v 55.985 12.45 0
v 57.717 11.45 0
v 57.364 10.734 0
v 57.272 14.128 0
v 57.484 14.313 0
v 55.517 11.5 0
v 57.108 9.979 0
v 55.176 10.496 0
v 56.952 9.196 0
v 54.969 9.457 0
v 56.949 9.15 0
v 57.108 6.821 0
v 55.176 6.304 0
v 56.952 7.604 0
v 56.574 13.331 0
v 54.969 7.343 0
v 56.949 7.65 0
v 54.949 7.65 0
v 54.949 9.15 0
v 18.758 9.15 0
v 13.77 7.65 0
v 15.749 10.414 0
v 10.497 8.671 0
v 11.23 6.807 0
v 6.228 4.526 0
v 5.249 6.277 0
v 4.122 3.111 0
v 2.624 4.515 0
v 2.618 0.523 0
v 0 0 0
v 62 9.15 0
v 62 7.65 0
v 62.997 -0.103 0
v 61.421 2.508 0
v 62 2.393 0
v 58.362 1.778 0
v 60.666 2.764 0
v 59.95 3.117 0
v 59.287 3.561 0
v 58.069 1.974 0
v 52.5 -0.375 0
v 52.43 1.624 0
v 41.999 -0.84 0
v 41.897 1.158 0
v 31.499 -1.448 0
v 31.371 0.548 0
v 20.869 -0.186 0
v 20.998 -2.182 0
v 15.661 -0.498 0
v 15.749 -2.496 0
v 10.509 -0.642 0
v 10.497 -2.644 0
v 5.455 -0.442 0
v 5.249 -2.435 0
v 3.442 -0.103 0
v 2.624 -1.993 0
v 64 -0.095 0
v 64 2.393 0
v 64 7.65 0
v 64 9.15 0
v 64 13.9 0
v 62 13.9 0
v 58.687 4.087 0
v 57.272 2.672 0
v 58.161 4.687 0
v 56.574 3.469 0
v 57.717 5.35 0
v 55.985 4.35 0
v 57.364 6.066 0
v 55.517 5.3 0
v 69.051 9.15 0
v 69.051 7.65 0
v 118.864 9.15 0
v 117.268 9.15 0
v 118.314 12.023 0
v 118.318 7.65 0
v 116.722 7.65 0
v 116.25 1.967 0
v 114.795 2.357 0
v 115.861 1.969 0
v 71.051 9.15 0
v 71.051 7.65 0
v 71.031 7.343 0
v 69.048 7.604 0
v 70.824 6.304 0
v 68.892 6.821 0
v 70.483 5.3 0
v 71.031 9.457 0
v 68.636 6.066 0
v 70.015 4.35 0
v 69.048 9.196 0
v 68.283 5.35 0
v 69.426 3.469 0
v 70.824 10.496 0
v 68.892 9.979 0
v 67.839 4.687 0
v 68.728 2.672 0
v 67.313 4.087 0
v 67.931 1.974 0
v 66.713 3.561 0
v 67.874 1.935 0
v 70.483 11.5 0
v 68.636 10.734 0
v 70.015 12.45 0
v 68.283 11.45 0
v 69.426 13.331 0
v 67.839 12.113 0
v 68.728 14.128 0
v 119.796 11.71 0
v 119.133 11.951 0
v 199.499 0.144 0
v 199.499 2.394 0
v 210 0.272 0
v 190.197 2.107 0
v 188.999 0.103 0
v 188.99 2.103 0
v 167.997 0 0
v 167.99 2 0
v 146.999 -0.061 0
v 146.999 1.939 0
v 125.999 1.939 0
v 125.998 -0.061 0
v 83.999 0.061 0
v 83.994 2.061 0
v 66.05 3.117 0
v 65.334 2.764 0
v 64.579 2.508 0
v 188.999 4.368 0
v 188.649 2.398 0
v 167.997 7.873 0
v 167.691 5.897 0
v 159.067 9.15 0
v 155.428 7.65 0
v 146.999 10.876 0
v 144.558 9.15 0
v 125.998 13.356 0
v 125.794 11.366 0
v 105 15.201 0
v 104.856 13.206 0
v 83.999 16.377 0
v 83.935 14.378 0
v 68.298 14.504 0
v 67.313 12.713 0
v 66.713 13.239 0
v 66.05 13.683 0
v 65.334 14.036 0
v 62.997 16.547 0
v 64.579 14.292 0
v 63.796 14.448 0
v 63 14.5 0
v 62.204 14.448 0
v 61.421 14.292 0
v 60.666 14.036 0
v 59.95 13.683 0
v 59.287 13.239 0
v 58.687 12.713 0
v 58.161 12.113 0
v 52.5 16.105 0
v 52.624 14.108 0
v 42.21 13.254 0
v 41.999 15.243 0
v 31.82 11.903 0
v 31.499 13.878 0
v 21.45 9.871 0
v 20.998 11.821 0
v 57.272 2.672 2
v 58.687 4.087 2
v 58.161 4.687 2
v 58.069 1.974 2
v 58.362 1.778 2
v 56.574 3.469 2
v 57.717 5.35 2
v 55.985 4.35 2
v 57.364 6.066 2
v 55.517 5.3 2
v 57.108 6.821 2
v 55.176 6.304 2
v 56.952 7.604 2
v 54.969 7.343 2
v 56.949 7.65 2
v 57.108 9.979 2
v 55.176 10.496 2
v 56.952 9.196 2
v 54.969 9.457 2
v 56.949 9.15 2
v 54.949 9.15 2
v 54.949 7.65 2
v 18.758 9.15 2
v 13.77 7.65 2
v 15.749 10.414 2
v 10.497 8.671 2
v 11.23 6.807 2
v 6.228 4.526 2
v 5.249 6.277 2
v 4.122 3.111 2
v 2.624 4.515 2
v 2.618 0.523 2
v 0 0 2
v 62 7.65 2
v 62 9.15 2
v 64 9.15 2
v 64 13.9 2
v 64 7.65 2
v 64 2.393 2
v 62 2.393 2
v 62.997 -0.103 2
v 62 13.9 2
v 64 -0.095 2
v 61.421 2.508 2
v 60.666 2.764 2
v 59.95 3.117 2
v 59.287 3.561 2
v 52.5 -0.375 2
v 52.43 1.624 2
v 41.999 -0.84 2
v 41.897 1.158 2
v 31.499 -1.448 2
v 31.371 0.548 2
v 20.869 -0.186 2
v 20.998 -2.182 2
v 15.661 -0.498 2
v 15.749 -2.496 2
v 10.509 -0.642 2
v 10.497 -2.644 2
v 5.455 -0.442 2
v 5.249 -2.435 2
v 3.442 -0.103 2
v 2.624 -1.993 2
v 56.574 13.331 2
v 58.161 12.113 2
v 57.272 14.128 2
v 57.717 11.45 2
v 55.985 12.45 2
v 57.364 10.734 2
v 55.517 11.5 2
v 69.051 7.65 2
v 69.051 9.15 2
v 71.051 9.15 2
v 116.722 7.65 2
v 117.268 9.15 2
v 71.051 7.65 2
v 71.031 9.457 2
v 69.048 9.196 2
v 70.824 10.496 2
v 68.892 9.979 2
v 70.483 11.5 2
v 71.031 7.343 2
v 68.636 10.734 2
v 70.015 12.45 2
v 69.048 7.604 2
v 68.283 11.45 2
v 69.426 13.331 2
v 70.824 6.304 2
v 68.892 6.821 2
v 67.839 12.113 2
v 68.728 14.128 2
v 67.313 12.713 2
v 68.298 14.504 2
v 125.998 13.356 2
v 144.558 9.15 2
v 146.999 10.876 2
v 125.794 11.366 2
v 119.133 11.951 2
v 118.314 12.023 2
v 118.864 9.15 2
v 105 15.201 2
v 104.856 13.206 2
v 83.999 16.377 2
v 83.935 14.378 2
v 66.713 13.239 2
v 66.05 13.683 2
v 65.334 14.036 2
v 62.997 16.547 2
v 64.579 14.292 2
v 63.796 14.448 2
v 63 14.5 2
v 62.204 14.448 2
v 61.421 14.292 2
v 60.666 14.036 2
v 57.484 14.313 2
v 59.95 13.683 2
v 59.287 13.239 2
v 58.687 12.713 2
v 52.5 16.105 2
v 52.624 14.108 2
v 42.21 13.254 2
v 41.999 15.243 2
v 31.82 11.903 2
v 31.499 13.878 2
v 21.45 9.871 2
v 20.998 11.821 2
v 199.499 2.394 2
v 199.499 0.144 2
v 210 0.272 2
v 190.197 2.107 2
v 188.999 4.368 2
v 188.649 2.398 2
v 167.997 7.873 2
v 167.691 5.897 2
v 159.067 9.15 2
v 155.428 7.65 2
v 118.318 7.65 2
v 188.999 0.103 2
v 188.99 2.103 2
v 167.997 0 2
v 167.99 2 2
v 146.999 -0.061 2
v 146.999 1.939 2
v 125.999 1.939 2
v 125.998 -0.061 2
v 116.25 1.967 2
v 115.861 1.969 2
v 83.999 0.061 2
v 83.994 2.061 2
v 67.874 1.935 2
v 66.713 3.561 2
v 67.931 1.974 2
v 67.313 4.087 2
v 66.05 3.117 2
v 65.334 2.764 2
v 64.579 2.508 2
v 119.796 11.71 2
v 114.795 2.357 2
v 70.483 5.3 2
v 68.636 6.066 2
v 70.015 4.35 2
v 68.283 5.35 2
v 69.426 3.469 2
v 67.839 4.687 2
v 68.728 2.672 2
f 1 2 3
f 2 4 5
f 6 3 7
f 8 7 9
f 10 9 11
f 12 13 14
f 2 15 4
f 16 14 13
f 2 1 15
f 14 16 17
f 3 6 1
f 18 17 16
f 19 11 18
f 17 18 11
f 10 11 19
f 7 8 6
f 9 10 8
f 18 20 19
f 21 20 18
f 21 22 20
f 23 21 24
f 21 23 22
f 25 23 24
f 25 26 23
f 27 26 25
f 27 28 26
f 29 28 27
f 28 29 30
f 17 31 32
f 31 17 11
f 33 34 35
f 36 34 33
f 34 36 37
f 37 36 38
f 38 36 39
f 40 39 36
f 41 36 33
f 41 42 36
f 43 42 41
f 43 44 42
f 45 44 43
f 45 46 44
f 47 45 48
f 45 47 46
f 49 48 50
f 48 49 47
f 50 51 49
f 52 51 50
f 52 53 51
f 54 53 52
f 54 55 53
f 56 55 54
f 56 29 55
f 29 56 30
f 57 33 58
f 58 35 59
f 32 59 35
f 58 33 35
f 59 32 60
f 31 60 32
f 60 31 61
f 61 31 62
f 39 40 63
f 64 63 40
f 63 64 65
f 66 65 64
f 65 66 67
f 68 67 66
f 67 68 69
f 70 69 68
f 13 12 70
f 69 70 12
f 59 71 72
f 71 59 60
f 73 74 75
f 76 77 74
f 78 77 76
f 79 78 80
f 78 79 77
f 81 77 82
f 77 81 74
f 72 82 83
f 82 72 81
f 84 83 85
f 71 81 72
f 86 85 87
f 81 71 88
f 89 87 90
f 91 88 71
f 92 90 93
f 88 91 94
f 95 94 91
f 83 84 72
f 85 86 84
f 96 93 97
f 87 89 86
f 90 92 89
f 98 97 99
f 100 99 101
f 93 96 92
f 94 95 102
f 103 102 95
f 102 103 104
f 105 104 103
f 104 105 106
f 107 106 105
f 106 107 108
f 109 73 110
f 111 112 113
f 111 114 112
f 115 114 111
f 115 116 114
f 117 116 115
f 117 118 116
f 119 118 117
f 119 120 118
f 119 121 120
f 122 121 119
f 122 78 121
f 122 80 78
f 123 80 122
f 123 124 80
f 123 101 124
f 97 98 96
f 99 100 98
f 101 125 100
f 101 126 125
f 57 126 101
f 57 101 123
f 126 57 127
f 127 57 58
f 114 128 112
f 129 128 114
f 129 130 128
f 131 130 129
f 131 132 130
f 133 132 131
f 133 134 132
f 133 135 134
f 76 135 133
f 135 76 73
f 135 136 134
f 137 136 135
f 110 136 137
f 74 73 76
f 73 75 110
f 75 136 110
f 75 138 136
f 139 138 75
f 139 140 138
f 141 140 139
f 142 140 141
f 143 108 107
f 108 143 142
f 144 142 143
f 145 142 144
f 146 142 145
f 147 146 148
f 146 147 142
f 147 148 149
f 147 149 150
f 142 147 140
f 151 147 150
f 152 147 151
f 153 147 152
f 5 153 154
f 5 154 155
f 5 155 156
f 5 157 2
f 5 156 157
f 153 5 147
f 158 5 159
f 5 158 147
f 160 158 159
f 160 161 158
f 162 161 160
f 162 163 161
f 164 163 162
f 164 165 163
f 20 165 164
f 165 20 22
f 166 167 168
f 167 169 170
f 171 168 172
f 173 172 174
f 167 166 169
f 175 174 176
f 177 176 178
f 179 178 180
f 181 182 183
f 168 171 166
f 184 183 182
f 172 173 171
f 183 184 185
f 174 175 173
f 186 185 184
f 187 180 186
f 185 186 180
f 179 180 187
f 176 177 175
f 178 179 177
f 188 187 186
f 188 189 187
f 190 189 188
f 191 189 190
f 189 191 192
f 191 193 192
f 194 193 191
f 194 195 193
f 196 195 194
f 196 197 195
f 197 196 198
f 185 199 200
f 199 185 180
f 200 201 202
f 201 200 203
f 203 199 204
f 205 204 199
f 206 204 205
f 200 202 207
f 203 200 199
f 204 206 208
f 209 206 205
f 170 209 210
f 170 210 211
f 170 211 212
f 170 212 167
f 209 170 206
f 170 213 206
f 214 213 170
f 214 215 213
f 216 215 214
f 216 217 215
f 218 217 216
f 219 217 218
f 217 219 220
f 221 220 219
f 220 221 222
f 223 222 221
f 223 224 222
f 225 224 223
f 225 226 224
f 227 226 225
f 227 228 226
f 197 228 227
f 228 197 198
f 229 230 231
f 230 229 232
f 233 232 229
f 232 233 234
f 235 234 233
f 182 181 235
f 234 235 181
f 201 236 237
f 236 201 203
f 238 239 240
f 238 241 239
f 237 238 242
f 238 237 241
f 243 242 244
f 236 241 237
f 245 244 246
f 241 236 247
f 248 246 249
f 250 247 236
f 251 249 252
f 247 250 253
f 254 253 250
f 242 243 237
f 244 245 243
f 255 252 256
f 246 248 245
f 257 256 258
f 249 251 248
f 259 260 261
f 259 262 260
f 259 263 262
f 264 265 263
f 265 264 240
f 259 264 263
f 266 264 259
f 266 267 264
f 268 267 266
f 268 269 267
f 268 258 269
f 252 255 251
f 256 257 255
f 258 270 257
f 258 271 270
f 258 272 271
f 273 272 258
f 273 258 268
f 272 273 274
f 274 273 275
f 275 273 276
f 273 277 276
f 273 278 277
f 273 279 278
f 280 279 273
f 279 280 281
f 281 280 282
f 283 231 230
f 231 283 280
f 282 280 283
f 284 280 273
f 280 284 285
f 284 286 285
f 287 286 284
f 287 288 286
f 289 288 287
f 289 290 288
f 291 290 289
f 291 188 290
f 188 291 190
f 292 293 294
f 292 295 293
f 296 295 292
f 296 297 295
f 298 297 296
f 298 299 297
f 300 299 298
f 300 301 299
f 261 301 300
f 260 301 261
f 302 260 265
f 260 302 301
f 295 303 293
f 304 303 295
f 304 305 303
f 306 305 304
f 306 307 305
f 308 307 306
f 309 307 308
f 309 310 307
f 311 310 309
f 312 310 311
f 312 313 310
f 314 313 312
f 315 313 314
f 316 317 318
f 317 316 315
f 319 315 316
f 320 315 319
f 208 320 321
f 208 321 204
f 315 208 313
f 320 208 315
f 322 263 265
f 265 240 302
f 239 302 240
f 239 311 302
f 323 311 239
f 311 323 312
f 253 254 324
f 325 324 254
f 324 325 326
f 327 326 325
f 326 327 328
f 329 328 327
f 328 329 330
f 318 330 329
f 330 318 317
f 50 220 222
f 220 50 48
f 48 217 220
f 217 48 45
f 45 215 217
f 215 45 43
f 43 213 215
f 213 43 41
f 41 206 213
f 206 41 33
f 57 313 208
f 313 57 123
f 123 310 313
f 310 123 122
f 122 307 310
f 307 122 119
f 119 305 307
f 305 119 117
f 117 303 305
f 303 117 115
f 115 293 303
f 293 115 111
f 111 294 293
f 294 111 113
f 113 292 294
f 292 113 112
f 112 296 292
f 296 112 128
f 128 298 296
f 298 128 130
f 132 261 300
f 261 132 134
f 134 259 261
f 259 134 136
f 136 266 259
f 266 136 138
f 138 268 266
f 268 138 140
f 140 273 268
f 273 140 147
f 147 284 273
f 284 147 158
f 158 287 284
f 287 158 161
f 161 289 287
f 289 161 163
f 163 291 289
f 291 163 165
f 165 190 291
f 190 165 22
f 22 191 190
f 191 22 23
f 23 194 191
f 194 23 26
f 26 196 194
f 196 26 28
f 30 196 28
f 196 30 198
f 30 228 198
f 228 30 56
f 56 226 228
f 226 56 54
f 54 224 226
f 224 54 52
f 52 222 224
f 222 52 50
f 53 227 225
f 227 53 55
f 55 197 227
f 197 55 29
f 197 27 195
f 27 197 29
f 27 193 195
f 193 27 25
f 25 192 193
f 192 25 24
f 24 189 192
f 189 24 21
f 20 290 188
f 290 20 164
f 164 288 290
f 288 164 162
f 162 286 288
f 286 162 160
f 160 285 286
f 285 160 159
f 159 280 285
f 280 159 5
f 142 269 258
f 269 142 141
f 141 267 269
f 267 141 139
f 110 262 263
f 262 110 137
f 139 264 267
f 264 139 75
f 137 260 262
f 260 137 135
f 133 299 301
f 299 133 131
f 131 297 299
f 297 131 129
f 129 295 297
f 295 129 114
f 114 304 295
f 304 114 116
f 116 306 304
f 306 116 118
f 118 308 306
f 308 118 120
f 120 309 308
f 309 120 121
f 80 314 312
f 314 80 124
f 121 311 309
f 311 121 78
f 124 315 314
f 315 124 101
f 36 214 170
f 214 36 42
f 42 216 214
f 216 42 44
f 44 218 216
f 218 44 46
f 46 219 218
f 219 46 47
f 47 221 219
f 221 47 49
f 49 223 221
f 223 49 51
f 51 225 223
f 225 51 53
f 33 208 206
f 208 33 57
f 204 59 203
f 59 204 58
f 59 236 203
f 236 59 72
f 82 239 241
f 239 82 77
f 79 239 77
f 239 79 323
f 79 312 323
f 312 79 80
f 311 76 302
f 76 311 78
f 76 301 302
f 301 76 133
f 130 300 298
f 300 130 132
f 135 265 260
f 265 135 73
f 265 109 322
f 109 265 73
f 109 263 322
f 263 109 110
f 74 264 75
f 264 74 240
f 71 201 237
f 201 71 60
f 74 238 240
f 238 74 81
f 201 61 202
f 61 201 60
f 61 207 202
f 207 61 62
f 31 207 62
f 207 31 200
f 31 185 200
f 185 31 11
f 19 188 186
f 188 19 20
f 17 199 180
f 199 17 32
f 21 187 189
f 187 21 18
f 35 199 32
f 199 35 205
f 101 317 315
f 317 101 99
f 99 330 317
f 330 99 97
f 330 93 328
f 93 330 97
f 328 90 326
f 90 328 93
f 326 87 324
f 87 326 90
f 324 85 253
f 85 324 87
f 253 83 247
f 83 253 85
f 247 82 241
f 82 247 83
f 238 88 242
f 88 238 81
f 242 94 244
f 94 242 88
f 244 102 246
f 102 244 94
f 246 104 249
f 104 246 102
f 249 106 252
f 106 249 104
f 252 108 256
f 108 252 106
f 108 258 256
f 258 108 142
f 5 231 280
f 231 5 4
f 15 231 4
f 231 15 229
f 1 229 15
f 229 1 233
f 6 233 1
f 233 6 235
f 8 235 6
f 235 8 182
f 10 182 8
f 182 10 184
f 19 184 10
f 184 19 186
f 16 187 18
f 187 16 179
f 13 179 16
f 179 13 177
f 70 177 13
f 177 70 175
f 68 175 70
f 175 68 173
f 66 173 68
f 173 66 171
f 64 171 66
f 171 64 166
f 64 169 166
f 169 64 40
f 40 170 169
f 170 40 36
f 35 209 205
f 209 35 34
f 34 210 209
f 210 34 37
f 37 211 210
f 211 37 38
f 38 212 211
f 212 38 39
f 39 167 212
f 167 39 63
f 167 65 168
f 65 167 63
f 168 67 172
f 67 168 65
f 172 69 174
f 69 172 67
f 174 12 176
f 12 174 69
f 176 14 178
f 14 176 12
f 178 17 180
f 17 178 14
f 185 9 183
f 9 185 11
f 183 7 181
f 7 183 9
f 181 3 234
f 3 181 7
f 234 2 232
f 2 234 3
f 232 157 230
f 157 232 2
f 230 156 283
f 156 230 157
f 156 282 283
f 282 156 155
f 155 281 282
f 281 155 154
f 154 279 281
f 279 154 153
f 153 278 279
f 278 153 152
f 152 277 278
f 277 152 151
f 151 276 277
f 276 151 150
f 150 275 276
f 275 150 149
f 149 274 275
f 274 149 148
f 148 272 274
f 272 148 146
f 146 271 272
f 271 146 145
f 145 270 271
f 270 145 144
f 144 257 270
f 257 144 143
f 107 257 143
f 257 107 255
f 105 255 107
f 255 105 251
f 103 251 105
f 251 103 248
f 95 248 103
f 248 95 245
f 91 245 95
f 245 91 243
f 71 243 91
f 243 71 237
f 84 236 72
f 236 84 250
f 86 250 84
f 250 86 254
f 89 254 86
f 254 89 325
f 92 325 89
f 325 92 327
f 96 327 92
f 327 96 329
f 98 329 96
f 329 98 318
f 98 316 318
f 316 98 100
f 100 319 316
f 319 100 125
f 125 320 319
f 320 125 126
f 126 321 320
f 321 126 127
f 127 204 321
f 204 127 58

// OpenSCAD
// file: ../../lib/profiles.scad
// Knihovna leteckych profilu pro RC letadlo
// Vsechny rozmery v milimetrech

// Clark-Y profil (zjednoduseny) - pro kridlo
// Vraci 2D polygon profilu normalizovany na hloubku 1
function clark_y_upper() = [
    [1.000, 0.0013],
    [0.950, 0.0114],
    [0.900, 0.0208],
    [0.800, 0.0375],
    [0.700, 0.0518],
    [0.600, 0.0636],
    [0.500, 0.0724],
    [0.400, 0.0780],
    [0.300, 0.0788],
    [0.250, 0.0767],
    [0.200, 0.0726],
    [0.150, 0.0661],
    [0.100, 0.0563],
    [0.075, 0.0496],
    [0.050, 0.0413],
    [0.025, 0.0299],
    [0.0125,0.0215],
    [0.000, 0.0000]
];

function clark_y_lower() = [
    [0.000, 0.0000],
    [0.0125,-0.0095],
    [0.025, -0.0116],
    [0.050, -0.0126],
    [0.075, -0.0119],
    [0.100, -0.0104],
    [0.150, -0.0069],
    [0.200, -0.0040],
    [0.250, -0.0018],
    [0.300, -0.0005],
    [0.400, 0.0003],
    [0.500, 0.0000],
    [0.600, -0.0003],
    [0.700, -0.0003],
    [0.800, 0.0000],
    [0.900, 0.0005],
    [0.950, 0.0007],
    [1.000, 0.0013]
];

function clark_y_points() = concat(clark_y_upper(), clark_y_lower());

module clark_y_profile(chord) {
    pts = concat(clark_y_upper(), clark_y_lower());
    scale([chord, chord, 1])
        polygon([for (p = pts) [p[0], p[1]]]);
}

// NACA 0009 symetricky profil - pro ocasni plochy
function naca0009_half() = [
    [0.000, 0.0000],
    [0.0125, 0.0112],
    [0.025, 0.0155],
    [0.050, 0.0212],
    [0.075, 0.0253],
    [0.100, 0.0283],
    [0.150, 0.0326],
    [0.200, 0.0350],
    [0.250, 0.0361],
    [0.300, 0.0362],
    [0.400, 0.0341],
    [0.500, 0.0298],
    [0.600, 0.0241],
    [0.700, 0.0177],
    [0.800, 0.0112],
    [0.900, 0.0053],
    [0.950, 0.0027],
    [1.000, 0.0005]
];

module naca0009_profile(chord) {
    upper = naca0009_half();
    lower = [for (i = [len(upper)-1:-1:0]) [upper[i][0], -upper[i][1]]];
    pts = concat(upper, [for (i = [1:len(lower)-1]) lower[i]]);
    scale([chord, chord, 1])
        polygon([for (p = pts) [p[0], p[1]]]);
}

// Ovalny prurezu trupu
module oval_profile(width, height) {
    scale([width/2, height/2])
        circle(r=1, $fn=64);
}

// Zaobleny obdelnik
module rounded_rect(w, h, r) {
    offset(r=r)
        square([w - 2*r, h - 2*r], center=true);
}
// main file
// Zebro koncove - nejmensi zebro kridla
// Clark-Y profil, hloubka 210mm
// Material: PET-G, 20% vypln, 3 perimetry

use <../../lib/profiles.scad>;

$fn = 48;

hloubka = 210;
tl_zebra = 2;
tl_stena = 2;
nosnik_prumer = 12.2;
pozice_nosnik = 0.30;

module zebro_koncove() {
    linear_extrude(tl_zebra)
        difference() {
            clark_y_profile(hloubka);
            offset(delta=-tl_stena)
                clark_y_profile(hloubka);
            translate([hloubka * pozice_nosnik, hloubka * 0.04])
                circle(d=nosnik_prumer);
        }

    // Vzpery
    linear_extrude(tl_zebra)
        intersection() {
            clark_y_profile(hloubka);
            union() {
                translate([hloubka * pozice_nosnik - 1, -5])
                    square([2, hloubka * 0.09]);
                translate([0, hloubka * 0.04 - 0.75])
                    square([hloubka, 1.5]);
                translate([hloubka * 0.55, hloubka * 0.01])
                    rotate(-20)
                        translate([-0.75, 0])
                            square([1.5, hloubka * 0.05]);
            }
        }

    // Limec
    linear_extrude(tl_zebra)
        translate([hloubka * pozice_nosnik, hloubka * 0.04])
            difference() {
                circle(d=nosnik_prumer + 4);
                circle(d=nosnik_prumer);
            }
}

zebro_koncove();
